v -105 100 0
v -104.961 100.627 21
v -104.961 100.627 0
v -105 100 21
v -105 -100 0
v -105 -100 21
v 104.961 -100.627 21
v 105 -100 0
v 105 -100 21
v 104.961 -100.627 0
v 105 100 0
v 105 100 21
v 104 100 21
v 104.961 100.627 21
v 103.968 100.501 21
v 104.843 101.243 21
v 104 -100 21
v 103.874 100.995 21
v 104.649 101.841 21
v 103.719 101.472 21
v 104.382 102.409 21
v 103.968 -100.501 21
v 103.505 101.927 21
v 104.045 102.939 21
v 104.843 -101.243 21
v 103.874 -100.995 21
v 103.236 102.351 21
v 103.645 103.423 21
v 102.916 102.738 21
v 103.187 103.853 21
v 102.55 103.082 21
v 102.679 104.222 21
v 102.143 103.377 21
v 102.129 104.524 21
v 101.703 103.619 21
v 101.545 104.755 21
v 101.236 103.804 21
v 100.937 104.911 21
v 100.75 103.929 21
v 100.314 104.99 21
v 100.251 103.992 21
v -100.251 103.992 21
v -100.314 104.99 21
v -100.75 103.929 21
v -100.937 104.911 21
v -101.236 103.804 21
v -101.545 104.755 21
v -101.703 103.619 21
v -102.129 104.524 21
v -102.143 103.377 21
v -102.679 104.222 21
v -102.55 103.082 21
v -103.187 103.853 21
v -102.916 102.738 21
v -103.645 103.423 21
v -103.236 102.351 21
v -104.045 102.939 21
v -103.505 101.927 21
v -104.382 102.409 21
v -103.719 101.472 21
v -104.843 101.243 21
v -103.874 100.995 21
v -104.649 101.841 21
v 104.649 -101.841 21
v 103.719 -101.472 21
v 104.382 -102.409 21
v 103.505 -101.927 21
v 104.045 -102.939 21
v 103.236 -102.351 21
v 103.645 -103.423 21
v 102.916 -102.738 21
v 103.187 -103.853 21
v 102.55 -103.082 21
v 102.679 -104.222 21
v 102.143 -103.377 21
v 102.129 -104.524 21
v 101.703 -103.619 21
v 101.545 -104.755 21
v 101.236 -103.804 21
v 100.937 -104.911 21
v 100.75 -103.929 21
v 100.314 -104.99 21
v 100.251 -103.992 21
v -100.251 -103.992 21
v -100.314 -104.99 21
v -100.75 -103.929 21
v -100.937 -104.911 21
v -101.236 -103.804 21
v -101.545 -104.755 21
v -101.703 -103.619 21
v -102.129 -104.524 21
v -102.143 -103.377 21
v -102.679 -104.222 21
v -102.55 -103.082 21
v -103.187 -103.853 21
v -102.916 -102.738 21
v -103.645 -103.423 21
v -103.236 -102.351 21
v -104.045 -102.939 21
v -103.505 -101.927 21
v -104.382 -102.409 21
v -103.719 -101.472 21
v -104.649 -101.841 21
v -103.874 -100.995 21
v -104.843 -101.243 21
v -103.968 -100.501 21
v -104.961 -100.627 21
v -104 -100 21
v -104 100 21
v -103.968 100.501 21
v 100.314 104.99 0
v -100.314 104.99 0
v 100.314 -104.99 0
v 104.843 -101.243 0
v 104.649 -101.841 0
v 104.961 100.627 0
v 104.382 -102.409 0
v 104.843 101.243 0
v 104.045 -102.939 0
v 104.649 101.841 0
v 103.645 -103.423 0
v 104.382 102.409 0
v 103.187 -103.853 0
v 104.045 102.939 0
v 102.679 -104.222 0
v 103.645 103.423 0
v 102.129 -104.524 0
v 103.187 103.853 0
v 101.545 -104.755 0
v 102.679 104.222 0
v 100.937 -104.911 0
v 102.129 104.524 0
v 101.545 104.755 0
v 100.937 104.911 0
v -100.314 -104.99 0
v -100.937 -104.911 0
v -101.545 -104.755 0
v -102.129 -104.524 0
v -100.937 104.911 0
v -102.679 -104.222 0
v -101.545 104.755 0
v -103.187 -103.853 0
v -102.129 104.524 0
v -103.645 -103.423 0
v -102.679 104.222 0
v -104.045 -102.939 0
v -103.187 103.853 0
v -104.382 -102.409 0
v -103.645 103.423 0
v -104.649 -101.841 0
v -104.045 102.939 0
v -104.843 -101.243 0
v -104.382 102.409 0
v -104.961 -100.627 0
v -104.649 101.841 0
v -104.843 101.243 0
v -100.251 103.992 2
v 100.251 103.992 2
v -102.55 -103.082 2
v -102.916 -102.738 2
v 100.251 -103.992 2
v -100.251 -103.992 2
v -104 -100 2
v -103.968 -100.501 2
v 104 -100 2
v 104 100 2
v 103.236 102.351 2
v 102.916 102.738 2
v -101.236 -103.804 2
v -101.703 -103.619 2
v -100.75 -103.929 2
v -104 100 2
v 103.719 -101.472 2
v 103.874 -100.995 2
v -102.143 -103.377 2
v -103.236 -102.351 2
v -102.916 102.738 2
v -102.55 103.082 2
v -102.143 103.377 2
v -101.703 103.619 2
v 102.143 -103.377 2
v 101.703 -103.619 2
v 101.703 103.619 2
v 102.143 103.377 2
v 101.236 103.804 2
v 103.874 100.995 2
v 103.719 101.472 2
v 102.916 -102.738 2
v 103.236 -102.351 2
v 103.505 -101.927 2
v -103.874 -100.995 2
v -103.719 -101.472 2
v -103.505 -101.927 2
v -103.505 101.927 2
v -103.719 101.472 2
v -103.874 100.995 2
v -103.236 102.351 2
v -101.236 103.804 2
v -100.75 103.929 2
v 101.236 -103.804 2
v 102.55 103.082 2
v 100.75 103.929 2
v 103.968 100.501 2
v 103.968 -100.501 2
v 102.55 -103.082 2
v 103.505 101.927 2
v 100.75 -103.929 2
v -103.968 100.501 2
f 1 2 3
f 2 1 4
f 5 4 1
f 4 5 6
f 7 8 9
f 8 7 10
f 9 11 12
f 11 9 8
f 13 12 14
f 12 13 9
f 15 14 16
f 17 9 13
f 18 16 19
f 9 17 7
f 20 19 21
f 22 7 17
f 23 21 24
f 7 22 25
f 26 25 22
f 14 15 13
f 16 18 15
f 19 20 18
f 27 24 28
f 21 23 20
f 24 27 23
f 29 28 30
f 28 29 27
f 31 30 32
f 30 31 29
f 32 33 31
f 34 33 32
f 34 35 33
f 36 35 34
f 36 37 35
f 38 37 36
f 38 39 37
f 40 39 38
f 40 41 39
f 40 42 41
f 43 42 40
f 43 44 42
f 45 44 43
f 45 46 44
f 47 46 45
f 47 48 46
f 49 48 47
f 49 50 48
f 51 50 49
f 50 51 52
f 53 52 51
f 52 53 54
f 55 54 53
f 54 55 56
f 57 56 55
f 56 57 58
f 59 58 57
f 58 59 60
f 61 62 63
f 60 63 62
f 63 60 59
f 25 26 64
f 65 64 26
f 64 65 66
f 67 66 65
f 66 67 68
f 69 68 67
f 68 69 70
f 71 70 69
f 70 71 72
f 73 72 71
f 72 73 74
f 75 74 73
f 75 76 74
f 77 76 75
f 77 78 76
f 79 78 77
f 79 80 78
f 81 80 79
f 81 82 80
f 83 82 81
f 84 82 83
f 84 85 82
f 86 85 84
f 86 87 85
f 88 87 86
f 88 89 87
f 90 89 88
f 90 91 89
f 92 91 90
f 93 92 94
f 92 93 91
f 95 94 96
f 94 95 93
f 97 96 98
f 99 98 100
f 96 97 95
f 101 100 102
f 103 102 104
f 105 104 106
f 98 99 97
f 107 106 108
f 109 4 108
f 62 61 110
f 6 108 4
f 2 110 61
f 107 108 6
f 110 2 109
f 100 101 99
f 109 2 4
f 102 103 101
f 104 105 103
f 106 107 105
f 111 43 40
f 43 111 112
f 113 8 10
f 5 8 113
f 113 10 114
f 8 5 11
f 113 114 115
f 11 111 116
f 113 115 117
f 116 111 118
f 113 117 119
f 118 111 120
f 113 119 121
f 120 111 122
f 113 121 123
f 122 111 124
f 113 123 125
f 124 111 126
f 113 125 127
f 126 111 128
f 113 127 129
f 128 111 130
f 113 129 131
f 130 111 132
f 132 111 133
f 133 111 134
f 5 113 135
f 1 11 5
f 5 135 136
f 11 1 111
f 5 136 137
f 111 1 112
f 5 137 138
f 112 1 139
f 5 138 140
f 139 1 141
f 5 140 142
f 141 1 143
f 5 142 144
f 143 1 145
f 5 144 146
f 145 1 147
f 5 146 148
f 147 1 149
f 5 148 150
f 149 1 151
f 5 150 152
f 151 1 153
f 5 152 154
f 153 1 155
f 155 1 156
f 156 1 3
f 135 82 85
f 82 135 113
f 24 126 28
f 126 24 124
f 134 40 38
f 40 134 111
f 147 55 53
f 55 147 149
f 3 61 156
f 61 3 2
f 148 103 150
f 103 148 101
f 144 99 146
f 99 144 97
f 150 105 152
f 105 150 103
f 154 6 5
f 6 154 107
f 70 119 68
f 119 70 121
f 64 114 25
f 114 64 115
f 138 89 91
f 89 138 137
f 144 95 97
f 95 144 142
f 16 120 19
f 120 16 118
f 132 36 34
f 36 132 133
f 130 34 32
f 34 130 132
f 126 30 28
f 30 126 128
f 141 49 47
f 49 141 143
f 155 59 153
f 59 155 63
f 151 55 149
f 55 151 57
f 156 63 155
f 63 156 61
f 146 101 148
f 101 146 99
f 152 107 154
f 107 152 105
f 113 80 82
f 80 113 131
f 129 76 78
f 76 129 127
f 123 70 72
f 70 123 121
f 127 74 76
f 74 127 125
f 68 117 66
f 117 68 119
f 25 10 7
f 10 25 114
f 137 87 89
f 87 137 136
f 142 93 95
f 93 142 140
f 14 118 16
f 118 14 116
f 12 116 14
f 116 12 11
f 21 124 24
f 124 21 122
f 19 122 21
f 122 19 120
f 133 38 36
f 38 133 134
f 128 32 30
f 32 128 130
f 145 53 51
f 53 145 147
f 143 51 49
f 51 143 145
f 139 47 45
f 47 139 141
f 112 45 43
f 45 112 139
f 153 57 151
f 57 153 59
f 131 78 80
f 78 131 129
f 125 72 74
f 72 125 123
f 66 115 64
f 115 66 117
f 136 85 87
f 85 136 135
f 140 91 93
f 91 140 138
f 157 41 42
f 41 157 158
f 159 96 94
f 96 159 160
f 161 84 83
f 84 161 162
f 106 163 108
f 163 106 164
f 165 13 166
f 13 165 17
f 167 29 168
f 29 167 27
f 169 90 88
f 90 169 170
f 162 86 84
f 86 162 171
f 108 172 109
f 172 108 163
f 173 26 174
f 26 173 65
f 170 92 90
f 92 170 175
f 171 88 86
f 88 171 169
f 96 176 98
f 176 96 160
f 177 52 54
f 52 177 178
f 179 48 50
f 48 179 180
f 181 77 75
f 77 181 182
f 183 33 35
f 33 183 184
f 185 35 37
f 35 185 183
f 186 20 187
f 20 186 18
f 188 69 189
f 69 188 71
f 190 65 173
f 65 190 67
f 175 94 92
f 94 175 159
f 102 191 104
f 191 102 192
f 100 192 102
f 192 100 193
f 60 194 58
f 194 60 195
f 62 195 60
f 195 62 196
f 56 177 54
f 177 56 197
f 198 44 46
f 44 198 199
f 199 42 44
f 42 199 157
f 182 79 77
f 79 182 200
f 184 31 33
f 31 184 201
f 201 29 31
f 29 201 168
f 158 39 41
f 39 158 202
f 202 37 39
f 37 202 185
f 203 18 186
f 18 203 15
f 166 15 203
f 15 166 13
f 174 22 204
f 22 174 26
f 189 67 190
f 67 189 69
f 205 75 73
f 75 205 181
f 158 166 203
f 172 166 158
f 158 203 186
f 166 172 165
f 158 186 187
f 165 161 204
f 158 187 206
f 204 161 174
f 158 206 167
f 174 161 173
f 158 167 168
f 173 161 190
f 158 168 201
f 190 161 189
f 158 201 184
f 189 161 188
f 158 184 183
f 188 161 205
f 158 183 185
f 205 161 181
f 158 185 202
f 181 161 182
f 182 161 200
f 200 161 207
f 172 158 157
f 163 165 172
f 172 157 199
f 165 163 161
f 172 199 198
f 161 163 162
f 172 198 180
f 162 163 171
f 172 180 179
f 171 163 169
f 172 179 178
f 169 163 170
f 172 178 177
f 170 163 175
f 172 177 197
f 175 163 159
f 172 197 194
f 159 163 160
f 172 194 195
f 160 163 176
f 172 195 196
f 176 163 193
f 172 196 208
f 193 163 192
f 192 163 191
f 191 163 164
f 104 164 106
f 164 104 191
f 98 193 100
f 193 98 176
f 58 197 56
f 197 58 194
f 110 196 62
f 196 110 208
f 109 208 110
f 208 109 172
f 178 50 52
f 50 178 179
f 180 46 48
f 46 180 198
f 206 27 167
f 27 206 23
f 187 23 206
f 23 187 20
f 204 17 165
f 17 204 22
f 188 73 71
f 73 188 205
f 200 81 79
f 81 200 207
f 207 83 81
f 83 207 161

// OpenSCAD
$fn = 50;


difference() {
	union() {
		hull() {
			translate(v = [-100.0000000000, 100.0000000000, 0]) {
				cylinder(h = 21, r = 5);
			}
			translate(v = [100.0000000000, 100.0000000000, 0]) {
				cylinder(h = 21, r = 5);
			}
			translate(v = [-100.0000000000, -100.0000000000, 0]) {
				cylinder(h = 21, r = 5);
			}
			translate(v = [100.0000000000, -100.0000000000, 0]) {
				cylinder(h = 21, r = 5);
			}
		}
	}
	union() {
		translate(v = [0, 0, 2]) {
			hull() {
				translate(v = [-100.0000000000, 100.0000000000, 0]) {
					cylinder(h = 19, r = 4);
				}
				translate(v = [100.0000000000, 100.0000000000, 0]) {
					cylinder(h = 19, r = 4);
				}
				translate(v = [-100.0000000000, -100.0000000000, 0]) {
					cylinder(h = 19, r = 4);
				}
				translate(v = [100.0000000000, -100.0000000000, 0]) {
					cylinder(h = 19, r = 4);
				}
			}
		}
	}
}
